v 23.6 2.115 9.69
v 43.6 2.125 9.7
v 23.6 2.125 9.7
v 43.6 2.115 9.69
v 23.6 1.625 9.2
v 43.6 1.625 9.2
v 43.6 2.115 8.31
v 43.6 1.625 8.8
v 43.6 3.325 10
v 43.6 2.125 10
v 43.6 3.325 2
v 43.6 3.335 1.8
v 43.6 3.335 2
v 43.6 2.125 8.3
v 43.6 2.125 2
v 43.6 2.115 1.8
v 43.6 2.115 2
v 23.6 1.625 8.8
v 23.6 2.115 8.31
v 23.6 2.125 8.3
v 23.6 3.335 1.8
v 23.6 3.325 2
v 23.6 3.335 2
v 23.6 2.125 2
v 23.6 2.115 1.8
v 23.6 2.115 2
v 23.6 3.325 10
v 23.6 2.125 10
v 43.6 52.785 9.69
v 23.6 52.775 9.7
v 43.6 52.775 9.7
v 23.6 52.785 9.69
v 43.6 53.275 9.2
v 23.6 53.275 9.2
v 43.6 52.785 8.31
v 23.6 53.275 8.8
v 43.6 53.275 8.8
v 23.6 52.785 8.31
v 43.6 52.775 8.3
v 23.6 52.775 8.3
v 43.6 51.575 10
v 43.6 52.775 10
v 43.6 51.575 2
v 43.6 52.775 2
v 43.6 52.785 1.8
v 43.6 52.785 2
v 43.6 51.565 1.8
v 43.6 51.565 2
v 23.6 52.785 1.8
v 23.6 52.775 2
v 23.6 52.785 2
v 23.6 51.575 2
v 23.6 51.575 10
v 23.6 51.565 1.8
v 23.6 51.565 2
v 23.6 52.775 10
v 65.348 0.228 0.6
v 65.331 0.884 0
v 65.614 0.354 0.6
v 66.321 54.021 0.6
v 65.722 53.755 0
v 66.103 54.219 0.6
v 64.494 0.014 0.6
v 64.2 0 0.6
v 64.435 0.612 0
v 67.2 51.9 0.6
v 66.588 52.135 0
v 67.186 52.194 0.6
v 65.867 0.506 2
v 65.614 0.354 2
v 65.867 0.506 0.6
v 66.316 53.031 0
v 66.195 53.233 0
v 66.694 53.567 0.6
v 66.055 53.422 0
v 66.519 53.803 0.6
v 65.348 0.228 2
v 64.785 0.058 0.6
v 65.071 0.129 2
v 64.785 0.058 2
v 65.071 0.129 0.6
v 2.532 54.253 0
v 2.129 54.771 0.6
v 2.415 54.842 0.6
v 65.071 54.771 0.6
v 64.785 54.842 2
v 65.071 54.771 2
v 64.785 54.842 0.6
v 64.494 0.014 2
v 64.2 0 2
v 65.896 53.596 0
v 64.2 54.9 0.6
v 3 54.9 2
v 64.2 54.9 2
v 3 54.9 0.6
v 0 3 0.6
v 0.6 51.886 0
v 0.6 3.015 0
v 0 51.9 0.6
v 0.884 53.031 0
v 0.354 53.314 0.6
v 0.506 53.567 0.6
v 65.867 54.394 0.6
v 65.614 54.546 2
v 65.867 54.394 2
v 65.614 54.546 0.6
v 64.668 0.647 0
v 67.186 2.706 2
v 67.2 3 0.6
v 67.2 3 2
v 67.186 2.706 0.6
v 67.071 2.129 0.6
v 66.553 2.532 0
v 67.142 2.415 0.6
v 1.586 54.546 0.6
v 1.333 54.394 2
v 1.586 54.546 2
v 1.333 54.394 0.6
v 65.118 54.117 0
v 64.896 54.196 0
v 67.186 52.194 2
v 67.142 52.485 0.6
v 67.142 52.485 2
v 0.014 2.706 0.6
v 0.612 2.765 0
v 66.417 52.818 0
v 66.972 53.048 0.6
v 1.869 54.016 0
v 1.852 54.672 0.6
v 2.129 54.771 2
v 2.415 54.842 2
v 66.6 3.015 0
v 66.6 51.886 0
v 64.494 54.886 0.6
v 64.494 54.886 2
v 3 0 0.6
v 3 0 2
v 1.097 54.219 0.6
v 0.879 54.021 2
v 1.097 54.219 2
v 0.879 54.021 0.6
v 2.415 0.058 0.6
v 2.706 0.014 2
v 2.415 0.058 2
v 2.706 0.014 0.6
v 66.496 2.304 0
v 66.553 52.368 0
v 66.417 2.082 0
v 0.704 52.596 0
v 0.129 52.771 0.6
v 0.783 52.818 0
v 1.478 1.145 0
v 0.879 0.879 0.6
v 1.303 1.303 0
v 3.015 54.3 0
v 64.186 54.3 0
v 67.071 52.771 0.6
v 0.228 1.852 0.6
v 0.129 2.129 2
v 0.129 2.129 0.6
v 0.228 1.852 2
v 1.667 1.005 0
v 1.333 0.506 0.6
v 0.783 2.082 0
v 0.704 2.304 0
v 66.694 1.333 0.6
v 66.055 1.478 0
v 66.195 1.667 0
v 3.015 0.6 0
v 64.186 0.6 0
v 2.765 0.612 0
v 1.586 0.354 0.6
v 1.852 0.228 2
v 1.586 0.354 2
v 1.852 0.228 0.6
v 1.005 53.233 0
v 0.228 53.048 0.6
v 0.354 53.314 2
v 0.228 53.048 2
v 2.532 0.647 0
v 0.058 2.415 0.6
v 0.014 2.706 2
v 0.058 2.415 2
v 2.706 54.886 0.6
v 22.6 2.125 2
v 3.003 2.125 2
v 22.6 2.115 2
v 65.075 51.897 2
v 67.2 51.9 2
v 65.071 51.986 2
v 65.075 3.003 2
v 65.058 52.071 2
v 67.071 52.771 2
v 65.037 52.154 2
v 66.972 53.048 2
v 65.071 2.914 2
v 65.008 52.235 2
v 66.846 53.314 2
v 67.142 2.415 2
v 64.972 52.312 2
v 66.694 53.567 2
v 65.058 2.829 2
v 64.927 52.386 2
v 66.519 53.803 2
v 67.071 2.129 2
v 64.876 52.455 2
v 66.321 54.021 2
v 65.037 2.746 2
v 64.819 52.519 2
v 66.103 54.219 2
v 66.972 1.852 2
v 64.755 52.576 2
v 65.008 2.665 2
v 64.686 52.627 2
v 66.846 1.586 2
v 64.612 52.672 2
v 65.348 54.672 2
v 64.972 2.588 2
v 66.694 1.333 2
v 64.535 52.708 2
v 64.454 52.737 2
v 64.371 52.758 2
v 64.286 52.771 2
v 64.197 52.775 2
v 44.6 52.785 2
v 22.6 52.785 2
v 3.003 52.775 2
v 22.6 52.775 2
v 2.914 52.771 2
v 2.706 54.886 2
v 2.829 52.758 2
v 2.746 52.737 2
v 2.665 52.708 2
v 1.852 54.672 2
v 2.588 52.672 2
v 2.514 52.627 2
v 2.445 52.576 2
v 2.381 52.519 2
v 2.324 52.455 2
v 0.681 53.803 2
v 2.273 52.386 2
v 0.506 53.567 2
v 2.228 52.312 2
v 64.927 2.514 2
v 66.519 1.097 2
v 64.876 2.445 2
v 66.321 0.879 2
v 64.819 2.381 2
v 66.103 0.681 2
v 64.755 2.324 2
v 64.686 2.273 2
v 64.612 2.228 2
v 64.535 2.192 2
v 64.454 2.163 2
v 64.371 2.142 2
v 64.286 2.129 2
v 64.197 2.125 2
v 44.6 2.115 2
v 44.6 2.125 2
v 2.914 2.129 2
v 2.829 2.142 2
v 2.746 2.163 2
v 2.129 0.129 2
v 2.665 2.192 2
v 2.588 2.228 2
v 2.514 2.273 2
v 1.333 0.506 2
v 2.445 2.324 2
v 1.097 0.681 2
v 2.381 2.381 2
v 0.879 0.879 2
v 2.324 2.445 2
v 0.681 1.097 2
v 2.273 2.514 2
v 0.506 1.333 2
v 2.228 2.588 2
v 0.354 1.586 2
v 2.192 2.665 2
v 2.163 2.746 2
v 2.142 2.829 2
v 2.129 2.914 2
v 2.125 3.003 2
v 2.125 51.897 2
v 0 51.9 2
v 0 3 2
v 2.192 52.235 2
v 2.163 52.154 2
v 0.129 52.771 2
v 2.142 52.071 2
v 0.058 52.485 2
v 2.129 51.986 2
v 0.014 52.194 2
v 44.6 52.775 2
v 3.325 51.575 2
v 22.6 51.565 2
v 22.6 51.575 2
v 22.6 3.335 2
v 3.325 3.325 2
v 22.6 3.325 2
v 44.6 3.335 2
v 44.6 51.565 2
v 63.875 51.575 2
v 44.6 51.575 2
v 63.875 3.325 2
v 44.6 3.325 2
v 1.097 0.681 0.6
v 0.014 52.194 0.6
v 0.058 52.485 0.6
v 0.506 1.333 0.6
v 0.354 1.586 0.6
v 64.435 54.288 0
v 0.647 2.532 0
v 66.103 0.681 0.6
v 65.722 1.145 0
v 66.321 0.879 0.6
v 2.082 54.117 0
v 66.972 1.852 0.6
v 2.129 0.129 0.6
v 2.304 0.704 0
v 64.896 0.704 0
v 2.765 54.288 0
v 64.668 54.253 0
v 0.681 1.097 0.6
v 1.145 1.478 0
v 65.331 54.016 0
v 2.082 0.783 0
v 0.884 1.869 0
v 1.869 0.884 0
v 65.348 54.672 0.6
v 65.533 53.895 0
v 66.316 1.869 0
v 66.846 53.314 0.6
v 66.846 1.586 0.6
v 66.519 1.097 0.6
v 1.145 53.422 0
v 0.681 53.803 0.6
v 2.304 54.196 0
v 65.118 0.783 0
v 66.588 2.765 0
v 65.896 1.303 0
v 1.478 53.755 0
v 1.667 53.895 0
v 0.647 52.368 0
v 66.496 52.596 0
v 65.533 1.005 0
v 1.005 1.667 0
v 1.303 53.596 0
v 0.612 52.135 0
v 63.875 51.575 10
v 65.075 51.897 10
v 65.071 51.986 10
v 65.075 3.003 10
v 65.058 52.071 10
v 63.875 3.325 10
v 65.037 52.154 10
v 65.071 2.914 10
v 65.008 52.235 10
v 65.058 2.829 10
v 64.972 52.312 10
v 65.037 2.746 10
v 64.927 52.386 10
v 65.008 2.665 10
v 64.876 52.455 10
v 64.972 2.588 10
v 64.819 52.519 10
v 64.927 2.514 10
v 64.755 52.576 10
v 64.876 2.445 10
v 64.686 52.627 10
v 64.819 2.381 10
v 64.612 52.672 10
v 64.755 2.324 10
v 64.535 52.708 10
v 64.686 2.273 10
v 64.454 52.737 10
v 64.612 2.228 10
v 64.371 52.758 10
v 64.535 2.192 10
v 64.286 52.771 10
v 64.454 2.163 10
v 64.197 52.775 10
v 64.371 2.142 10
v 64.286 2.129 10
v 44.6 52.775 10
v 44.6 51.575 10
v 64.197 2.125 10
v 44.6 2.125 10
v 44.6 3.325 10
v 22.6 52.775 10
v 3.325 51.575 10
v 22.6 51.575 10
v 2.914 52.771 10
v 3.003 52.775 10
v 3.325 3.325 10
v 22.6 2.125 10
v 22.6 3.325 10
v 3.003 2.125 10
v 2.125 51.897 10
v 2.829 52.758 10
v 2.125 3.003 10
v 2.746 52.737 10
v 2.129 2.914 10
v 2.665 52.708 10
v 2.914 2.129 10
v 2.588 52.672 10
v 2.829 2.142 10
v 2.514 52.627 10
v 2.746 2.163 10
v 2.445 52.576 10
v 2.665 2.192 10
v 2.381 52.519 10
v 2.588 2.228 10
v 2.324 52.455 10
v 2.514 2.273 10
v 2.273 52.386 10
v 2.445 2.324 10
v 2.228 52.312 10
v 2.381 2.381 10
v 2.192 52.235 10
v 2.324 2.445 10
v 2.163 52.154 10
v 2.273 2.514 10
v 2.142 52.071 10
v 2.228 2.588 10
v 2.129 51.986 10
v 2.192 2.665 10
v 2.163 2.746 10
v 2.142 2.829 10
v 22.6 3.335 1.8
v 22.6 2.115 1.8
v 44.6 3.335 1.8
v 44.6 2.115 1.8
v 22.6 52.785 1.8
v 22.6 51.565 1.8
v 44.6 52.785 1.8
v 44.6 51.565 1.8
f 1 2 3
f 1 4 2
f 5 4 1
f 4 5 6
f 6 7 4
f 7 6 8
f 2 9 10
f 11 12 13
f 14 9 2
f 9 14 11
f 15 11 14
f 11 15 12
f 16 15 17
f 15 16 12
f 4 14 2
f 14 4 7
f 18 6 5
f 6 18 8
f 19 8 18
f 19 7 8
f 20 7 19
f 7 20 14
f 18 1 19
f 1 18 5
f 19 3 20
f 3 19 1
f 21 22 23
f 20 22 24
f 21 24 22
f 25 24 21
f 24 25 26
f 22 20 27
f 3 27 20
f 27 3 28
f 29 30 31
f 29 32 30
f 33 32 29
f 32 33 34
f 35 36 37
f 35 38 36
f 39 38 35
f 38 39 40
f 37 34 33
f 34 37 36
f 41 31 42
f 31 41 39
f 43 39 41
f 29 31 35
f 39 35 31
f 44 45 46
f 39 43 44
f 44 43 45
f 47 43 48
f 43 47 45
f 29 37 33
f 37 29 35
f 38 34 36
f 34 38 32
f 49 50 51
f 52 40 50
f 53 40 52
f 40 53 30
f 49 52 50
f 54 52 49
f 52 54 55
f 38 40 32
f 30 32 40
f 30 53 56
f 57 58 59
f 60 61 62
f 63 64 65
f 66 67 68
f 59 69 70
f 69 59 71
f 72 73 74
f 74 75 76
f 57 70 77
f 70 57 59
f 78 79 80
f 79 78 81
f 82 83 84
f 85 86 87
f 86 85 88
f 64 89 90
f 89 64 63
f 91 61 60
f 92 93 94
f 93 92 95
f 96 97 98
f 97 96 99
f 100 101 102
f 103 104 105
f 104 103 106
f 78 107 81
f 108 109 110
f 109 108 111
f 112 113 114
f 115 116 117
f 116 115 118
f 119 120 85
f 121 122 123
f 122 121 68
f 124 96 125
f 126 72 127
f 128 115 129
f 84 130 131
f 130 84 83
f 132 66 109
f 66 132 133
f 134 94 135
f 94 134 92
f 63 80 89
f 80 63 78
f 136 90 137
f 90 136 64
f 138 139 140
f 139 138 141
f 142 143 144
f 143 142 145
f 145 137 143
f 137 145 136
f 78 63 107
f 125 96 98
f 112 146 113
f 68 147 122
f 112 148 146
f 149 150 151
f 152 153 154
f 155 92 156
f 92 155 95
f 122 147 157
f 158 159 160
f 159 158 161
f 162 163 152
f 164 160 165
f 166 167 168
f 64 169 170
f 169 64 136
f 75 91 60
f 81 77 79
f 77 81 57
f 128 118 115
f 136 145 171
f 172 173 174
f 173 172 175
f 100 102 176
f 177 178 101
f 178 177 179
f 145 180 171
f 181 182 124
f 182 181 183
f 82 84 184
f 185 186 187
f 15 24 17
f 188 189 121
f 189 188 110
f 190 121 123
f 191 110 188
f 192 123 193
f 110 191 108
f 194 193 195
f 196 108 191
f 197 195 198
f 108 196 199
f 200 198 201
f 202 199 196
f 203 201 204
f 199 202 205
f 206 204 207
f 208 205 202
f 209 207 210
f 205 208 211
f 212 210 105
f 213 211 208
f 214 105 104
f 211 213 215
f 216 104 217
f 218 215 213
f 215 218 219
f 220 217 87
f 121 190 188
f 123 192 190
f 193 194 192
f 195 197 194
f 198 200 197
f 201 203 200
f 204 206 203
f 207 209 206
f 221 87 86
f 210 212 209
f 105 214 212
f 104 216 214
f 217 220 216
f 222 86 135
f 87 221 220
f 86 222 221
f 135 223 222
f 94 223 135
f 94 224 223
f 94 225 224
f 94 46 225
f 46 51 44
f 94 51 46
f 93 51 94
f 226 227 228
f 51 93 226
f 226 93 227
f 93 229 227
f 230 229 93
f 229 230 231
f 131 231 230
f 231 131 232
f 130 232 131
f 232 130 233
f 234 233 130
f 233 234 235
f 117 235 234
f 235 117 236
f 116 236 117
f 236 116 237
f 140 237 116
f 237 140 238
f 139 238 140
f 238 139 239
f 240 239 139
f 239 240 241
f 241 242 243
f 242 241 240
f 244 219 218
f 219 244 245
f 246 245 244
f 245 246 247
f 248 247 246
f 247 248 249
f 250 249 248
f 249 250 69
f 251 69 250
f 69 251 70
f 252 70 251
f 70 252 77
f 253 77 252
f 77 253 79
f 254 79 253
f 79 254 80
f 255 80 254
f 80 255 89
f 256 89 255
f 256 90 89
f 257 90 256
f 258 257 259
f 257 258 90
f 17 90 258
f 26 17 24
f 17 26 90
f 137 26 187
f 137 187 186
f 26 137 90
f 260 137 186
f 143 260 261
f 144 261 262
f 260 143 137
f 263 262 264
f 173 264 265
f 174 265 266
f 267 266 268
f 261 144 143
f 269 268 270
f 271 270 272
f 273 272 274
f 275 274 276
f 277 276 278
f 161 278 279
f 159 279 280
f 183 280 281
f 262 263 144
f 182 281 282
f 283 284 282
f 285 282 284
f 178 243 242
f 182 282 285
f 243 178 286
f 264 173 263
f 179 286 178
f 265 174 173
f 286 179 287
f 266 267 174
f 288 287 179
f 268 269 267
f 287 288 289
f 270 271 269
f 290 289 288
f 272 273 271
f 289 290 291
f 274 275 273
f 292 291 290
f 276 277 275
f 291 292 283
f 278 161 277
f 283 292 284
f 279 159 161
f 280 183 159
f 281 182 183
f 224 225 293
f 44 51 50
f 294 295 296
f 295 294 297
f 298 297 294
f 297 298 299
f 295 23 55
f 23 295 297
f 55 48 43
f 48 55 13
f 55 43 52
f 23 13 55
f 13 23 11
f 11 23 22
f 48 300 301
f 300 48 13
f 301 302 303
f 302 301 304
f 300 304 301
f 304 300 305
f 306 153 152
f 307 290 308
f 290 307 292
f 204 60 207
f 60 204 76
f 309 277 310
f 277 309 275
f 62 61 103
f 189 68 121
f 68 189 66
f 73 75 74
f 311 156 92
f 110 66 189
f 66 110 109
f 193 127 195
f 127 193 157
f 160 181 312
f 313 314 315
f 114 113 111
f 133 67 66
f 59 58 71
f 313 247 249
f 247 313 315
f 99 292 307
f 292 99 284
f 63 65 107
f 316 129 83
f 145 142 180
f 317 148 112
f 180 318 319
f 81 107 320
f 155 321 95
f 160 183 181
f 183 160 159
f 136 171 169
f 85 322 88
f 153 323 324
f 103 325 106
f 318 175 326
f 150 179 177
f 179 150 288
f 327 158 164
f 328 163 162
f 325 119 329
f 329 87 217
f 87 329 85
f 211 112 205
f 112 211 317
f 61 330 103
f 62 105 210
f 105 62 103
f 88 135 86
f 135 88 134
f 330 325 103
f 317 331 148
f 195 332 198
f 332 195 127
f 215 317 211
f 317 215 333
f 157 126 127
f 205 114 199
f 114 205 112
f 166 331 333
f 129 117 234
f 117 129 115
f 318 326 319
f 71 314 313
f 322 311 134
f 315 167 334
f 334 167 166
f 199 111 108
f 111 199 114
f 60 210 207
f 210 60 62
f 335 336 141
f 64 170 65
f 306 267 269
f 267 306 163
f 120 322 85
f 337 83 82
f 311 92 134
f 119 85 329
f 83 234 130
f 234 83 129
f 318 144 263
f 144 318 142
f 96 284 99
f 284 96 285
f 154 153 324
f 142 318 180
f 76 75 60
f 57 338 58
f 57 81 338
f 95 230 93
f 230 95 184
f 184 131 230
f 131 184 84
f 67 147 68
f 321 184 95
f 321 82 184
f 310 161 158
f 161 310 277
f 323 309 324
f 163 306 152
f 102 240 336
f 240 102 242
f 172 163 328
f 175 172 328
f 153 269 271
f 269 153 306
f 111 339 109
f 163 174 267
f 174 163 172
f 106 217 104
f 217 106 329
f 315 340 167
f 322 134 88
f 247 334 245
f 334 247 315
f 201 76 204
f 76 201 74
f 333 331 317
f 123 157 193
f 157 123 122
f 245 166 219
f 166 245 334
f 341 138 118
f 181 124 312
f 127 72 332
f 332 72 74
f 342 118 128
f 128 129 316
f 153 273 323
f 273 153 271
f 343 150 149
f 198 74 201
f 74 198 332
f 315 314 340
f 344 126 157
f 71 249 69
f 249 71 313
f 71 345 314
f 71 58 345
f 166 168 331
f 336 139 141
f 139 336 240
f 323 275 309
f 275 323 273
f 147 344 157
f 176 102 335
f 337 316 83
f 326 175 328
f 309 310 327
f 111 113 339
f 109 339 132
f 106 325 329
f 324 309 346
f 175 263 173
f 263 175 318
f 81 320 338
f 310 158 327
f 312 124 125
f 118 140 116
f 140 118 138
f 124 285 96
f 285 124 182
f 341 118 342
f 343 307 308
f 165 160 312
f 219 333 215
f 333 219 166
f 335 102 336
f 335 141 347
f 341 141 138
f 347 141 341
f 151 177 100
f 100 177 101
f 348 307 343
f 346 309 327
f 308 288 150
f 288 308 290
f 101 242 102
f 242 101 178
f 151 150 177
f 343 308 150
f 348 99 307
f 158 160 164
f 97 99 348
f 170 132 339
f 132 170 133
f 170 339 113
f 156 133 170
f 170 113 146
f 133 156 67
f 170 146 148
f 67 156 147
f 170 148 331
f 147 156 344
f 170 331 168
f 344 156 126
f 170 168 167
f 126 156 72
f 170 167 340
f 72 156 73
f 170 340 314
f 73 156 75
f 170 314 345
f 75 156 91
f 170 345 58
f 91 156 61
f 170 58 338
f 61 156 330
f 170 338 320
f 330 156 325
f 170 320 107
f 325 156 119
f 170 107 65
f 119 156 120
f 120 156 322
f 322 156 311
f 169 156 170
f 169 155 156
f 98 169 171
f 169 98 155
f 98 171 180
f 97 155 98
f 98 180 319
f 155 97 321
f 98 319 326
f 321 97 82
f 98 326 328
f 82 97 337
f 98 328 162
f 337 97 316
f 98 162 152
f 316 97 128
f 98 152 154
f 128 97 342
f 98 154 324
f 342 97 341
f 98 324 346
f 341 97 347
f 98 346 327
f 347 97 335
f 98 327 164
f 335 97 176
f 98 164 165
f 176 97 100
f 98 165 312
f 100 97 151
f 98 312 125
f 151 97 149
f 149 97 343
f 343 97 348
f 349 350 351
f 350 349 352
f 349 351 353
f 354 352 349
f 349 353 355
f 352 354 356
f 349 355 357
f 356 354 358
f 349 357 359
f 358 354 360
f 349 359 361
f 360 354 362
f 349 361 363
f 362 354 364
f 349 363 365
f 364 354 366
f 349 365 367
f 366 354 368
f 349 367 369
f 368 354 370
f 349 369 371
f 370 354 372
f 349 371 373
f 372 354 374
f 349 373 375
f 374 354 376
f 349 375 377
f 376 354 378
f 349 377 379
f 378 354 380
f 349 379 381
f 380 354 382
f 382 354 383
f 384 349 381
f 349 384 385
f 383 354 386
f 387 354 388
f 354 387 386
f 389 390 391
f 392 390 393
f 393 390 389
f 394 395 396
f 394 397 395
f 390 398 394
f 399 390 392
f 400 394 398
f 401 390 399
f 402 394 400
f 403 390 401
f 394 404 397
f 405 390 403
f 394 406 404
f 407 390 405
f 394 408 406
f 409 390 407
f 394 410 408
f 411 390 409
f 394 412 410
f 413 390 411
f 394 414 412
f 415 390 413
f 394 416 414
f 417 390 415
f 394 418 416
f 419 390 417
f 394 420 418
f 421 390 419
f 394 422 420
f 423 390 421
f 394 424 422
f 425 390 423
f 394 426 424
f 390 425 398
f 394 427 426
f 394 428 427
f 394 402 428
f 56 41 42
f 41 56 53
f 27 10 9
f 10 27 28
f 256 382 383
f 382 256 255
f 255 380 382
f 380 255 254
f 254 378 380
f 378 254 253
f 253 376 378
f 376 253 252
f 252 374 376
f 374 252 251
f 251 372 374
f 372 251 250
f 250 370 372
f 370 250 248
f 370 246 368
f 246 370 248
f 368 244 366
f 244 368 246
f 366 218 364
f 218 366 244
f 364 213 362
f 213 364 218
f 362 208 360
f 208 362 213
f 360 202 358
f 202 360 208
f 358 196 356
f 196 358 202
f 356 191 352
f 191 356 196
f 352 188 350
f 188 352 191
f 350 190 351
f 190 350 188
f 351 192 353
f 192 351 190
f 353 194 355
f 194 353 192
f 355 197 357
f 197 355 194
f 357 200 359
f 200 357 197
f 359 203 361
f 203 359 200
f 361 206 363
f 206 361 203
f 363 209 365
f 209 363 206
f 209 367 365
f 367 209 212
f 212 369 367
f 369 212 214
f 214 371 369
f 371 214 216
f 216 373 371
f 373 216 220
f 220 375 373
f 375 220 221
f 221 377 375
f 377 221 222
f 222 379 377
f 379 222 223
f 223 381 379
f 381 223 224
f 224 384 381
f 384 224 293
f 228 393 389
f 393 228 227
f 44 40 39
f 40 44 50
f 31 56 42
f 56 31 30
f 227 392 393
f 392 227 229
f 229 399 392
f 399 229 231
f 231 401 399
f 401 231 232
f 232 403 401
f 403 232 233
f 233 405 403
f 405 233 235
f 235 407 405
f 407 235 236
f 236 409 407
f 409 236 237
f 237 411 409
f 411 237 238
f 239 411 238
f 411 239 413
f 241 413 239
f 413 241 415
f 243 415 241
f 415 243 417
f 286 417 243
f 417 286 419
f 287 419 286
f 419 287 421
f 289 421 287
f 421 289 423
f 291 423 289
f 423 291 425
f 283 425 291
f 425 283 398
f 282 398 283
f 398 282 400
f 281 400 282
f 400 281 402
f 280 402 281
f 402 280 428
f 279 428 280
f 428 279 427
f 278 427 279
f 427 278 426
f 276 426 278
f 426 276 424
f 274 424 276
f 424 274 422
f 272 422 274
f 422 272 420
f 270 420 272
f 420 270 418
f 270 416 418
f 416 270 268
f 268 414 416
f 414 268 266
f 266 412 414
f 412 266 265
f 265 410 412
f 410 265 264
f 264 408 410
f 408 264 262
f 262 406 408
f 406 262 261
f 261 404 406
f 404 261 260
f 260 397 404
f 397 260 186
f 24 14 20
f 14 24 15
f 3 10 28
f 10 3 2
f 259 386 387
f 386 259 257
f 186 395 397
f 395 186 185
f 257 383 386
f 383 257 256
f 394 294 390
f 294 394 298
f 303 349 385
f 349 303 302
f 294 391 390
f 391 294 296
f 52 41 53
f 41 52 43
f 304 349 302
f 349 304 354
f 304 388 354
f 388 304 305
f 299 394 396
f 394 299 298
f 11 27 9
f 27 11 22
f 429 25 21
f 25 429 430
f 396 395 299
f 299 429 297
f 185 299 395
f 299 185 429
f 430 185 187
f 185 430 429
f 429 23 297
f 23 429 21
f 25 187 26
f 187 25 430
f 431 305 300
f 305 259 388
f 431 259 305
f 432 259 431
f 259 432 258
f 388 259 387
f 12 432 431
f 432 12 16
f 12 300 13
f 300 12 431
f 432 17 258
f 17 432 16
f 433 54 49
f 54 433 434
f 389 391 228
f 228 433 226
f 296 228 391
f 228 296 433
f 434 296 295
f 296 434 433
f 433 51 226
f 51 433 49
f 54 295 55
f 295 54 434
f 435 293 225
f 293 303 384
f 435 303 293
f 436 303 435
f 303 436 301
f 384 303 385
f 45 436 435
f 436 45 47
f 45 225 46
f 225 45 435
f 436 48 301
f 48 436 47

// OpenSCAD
// file: perfil_impresora.scad
// ==========================================
// Proyecto: piezas3D
// Componente: Perfil de impresora
// Descripción: Holguras y límites de la impresora real. Lo incluyen las piezas con encajes.
// ==========================================

// --- PARÁMETROS Y CONSTANTES ---

// Origen de los valores
perfil_medido = false;      // true solo después de imprimir y medir el peine de calibración
perfil_impresora = "Bambu Lab A1"; // marca y modelo
perfil_material = "PETG";   // las holguras cambian con el material: PLA ≠ PETG ≠ ABS
perfil_boquilla = 0.4;      // [mm]
perfil_fecha = "";          // AAAA-MM-DD de la medición

// Holguras: mm que se suman al diámetro del agujero. Se miden como agujero_elegido − 6,00
holgura_presion = 0.15;     // entra con fuerza y queda fijo sin pegamento
holgura_justo = 0.25;       // entra a mano y sin juego (uso diario)
holgura_deslizante = 0.30;  // se mueve libre, sin juego apreciable
holgura_suelto = 0.40;      // cae solo, con juego visible

// Expansión horizontal por lado: (bloque_medido − 20,00) / 2.
// Positiva = la impresora "engorda" las piezas y los agujeros salen más chicos.
expansion_xy = 0.00;

// Límites de impresión
espesor_min_pared = 1.2;    // [mm]
espesor_min_piso = 0.8;     // [mm]
voladizo_max = 45;          // [°] respecto de la vertical
puente_max = 10;            // [mm]
cama = [256, 256, 256];     // [mm] X, Y, Z (Bambu Lab A1)
margen_cama = 10;           // [mm] por lado

// --- VALIDACIONES ---
assert(holgura_presion < holgura_justo && holgura_justo < holgura_deslizante
       && holgura_deslizante < holgura_suelto,
       "las holguras deben crecer: presión < justo < deslizante < suelto");
assert(cama[0] > 2 * margen_cama && cama[1] > 2 * margen_cama,
       "el margen de la cama no deja superficie útil");

// --- FUNCIONES ---
function holgura(tipo = "justo") =
    tipo == "presion"    ? holgura_presion :
    tipo == "justo"      ? holgura_justo :
    tipo == "deslizante" ? holgura_deslizante :
    tipo == "suelto"     ? holgura_suelto :
    assert(false, str("tipo de holgura desconocido: ", tipo)) 0;

// Superficie útil de la cama (X, Y) descontando el margen
function cama_util() = [cama[0] - 2 * margen_cama, cama[1] - 2 * margen_cama];
// main file
// ==========================================
// Proyecto: piezas3D – Caja de pilas
// Componente: Tapa
// Descripción: Placa con una pollera interior que entra en la boca de la caja. En el centro de cada
//              lado largo, la pollera tiene una pestaña flexible, separada por dos ranuras, con un
//              reborde trapezoidal a 45° que engancha en la ranura de la caja. Se imprime con la cara
//              exterior sobre la cama y la pollera hacia arriba, sin soportes.
// ==========================================

// --- PARÁMETROS Y CONSTANTES ---
// Todas las medidas y validaciones están en el archivo compartido (las usa también la caja).
include <caja_pilas_parametros.scad>

// --- ENSAMBLAJE ---
ensamblaje_principal();

module ensamblaje_principal() {
    pieza_tapa();
}

// Orientación de impresión: cara exterior en Z = 0. La tapa es simétrica en X e Y, así que su
// contorno coincide con el de la caja y encastra en las dos orientaciones.
module pieza_tapa() {
    difference() {
        union() {
            placa_tapa();
            pollera();
            rebordes();
        }
        // Los cortes van siempre al final
        ranuras_pestanas();
    }
}

// --- MÓDULOS ---
// Cuerpo principal: placa con el chaflán de la cara exterior
module placa_tapa() {
    prisma_achaflanado(espesor_piso);
}

// Suma: pollera que entra en la boca de la caja con holgura_pollera por lado
module pollera() {
    translate([0, 0, espesor_piso - eps]) linear_extrude(height = alto_pollera + eps)
        difference() {
            offset(delta = -holgura_pollera) contorno_interior();
            offset(delta = -(holgura_pollera + espesor_pollera)) contorno_interior();
        }
}

// Suma: reborde en la cara exterior de cada pestaña, cerca de la punta de la pollera
module rebordes() {
    // [cara exterior de la pollera, sentido hacia la pared de la caja]
    for (cara = [[espesor_pared + holgura_pollera, -1], [espesor_pared + interior_y - holgura_pollera, 1]])
        translate([centro_x - ancho_pestana/2, cara[0], espesor_piso + z_reborde])
            scale([1, cara[1], 1]) rotate([90, 0, 90])
                linear_extrude(height = ancho_pestana) trapecio_encastre(saliente_reborde, plano_reborde);
}

// Resta: dos ranuras a cada lado de cada pestaña, de la punta hasta un poco dentro de la placa
module ranuras_pestanas() {
    for (y_cara = [espesor_pared + holgura_pollera, espesor_pared + interior_y - holgura_pollera - espesor_pollera],
         lado = [-1, 1])
        translate([centro_x + lado*(ancho_pestana + ranura_pestana)/2 - ranura_pestana/2, y_cara - eps,
                   espesor_piso - rebaje_ranura_pestana])
            cube([ranura_pestana, espesor_pollera + 2*eps, alto_pollera + rebaje_ranura_pestana + eps]);
}
